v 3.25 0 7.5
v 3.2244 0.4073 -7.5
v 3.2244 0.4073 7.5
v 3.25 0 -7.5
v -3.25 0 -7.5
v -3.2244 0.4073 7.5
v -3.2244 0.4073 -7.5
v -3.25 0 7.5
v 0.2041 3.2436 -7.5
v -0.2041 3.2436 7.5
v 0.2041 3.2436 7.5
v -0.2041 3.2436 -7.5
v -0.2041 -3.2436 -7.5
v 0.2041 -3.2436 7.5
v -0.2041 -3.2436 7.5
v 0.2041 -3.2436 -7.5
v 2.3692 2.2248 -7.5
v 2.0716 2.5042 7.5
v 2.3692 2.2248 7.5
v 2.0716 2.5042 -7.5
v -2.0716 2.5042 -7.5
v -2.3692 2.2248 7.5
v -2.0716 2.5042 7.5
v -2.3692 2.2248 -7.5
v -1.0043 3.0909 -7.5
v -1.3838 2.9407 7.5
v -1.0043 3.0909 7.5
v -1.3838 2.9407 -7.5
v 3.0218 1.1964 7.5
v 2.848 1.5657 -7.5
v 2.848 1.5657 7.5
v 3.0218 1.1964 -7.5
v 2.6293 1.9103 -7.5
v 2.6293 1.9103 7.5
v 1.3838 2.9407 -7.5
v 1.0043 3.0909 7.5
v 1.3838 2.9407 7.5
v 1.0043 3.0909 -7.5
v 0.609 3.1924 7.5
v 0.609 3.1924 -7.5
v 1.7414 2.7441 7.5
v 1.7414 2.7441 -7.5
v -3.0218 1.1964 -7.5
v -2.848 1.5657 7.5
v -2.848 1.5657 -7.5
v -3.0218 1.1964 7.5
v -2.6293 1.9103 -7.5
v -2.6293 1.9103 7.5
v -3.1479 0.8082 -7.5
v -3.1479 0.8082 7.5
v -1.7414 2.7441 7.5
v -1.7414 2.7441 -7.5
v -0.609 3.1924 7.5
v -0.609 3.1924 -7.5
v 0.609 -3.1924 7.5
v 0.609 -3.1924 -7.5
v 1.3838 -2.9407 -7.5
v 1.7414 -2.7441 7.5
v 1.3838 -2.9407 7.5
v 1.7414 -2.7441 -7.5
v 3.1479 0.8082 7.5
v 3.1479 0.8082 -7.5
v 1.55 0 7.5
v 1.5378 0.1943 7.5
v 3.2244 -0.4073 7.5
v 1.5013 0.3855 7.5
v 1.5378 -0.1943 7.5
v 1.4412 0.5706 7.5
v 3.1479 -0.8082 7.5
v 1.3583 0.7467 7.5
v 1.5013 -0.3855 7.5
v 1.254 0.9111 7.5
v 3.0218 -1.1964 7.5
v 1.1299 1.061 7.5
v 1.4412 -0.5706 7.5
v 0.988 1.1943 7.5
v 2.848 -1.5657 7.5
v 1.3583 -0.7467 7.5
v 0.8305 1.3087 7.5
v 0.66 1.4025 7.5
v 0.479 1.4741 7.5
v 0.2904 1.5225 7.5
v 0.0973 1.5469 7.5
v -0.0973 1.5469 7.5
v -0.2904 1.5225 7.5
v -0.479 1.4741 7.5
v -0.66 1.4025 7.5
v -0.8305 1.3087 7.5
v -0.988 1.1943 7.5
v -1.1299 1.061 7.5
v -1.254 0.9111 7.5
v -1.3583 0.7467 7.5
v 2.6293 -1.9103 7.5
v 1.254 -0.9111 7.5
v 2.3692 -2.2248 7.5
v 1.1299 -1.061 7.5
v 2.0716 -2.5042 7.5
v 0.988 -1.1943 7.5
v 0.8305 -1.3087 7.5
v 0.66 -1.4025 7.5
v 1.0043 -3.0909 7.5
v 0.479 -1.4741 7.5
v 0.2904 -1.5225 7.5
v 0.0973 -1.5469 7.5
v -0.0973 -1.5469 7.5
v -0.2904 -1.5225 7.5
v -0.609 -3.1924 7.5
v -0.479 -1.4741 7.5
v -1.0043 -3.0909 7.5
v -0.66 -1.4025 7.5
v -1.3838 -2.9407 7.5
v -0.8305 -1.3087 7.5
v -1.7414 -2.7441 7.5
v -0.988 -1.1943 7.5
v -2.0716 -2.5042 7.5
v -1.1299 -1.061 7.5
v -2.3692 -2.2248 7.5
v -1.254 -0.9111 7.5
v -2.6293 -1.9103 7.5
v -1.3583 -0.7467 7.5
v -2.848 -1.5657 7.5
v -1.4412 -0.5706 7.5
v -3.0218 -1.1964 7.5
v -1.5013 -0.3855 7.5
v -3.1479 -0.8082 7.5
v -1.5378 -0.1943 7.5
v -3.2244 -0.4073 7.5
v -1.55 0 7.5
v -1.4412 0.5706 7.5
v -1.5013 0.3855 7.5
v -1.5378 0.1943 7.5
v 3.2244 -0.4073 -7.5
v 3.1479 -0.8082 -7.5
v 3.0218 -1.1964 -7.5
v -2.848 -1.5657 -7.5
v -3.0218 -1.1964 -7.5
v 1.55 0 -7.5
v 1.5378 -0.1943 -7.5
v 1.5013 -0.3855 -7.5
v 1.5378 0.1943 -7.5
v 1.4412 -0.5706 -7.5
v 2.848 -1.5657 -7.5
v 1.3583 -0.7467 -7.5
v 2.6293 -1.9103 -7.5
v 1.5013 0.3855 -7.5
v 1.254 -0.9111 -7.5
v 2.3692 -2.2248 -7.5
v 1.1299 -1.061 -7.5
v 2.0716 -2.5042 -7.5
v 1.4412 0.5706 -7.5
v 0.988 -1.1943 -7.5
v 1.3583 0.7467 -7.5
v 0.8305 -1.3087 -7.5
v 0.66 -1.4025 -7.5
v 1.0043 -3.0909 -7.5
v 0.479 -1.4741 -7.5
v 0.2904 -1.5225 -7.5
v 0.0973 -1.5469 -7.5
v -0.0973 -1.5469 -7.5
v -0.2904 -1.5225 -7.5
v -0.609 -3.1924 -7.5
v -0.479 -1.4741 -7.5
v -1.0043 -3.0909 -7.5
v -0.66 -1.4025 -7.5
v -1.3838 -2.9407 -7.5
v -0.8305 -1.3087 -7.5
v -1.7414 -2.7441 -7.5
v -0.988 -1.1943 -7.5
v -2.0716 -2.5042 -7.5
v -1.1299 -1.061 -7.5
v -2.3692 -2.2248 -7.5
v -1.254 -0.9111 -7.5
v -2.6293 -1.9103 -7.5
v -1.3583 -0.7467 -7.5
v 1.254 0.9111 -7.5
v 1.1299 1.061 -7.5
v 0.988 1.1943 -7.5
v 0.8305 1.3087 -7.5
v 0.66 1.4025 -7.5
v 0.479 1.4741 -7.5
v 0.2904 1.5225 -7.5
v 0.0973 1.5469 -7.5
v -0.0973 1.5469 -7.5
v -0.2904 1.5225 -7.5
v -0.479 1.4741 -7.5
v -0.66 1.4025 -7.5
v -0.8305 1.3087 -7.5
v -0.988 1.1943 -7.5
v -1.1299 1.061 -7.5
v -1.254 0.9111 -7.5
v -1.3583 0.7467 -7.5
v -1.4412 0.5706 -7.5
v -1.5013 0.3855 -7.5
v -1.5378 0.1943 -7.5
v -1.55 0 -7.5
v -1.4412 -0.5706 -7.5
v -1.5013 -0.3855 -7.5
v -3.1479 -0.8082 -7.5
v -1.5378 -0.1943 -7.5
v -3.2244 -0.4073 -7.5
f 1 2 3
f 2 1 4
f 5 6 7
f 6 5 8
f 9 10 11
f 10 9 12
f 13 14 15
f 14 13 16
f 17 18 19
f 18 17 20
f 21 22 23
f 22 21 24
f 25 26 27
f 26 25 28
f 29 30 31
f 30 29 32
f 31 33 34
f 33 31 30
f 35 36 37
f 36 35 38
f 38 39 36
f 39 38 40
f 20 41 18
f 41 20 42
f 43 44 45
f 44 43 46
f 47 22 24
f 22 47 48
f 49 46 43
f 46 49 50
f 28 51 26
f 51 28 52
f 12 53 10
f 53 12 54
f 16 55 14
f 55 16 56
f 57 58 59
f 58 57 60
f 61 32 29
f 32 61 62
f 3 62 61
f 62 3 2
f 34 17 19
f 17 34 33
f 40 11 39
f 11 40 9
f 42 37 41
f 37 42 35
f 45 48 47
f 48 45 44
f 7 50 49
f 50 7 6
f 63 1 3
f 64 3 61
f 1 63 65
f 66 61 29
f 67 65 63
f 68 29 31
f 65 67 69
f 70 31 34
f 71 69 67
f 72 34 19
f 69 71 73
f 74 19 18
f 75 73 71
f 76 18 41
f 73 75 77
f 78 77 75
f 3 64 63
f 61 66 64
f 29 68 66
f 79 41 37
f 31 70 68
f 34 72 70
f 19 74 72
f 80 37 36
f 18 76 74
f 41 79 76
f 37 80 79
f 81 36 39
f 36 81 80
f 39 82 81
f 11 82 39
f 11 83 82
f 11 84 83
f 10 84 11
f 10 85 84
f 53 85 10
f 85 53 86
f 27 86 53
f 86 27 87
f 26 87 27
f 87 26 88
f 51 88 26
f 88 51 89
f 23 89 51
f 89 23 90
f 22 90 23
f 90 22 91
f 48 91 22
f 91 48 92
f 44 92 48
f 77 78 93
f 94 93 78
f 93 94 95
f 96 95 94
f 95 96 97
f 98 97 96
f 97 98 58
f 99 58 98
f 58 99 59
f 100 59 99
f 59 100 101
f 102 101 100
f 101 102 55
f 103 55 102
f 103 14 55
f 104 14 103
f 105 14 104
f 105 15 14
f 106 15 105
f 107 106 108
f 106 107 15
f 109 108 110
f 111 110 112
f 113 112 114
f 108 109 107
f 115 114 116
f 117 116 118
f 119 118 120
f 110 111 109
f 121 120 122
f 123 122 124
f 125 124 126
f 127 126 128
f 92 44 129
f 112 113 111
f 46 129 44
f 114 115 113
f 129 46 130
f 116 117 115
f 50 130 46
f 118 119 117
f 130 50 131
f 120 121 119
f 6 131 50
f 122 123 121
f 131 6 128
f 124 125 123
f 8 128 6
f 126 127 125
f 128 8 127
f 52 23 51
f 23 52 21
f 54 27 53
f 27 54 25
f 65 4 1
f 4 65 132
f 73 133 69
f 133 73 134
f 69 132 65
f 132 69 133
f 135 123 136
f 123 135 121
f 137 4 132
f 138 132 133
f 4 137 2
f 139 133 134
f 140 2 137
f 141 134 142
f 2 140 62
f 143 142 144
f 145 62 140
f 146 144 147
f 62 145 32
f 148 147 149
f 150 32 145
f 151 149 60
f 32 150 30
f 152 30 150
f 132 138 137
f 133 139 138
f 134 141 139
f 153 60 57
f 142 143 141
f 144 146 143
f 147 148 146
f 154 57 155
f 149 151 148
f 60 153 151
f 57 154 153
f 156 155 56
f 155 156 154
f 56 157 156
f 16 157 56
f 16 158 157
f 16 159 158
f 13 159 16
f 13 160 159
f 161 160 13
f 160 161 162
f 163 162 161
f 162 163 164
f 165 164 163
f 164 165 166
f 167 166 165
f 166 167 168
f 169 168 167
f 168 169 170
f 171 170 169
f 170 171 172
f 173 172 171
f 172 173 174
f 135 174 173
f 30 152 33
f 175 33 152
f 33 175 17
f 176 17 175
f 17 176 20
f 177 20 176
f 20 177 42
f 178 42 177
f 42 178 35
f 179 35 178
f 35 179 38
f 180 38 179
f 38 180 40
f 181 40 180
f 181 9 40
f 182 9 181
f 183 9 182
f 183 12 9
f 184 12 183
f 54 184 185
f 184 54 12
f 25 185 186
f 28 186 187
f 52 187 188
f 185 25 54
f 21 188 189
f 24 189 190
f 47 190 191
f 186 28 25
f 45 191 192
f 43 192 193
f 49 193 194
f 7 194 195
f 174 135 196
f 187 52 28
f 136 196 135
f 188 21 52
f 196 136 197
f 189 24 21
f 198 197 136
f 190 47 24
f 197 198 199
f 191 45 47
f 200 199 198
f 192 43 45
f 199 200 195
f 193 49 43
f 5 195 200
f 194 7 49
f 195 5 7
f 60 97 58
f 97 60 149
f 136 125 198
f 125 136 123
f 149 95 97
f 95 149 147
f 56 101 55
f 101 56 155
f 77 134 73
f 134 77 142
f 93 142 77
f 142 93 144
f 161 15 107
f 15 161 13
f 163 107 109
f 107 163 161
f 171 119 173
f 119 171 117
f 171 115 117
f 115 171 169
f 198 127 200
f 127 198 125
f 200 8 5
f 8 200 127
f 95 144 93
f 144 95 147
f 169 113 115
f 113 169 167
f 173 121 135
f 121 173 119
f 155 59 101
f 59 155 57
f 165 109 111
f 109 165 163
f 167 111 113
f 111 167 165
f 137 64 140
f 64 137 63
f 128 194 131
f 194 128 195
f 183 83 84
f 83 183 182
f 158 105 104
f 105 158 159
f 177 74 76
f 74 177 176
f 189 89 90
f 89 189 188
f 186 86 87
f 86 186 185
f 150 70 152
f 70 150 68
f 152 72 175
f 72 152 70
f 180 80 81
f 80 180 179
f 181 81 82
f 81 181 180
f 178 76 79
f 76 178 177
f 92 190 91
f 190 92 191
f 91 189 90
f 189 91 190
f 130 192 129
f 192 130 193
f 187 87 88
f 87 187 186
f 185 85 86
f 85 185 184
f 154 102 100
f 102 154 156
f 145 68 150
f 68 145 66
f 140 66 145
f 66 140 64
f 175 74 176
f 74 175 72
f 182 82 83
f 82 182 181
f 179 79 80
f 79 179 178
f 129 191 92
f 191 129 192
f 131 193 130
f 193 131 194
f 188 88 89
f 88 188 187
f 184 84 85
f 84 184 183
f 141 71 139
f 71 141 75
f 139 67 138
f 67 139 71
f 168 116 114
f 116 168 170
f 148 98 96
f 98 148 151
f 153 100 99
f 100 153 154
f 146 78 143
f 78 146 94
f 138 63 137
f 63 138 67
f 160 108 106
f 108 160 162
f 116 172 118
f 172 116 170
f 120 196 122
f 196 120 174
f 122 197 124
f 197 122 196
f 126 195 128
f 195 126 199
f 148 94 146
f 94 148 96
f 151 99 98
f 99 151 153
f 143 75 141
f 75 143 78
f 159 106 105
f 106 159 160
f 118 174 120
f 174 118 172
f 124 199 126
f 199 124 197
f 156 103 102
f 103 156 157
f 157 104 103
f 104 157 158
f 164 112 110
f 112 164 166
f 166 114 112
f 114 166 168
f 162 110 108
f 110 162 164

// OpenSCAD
$fn = 50;


difference() {
	union() {
		translate(v = [0, 0, -7.5000000000]) {
			cylinder(h = 15, r = 3.2500000000);
		}
	}
	union() {
		translate(v = [0, 0, -100.0000000000]) {
			cylinder(h = 200, r = 1.5500000000);
		}
	}
}
